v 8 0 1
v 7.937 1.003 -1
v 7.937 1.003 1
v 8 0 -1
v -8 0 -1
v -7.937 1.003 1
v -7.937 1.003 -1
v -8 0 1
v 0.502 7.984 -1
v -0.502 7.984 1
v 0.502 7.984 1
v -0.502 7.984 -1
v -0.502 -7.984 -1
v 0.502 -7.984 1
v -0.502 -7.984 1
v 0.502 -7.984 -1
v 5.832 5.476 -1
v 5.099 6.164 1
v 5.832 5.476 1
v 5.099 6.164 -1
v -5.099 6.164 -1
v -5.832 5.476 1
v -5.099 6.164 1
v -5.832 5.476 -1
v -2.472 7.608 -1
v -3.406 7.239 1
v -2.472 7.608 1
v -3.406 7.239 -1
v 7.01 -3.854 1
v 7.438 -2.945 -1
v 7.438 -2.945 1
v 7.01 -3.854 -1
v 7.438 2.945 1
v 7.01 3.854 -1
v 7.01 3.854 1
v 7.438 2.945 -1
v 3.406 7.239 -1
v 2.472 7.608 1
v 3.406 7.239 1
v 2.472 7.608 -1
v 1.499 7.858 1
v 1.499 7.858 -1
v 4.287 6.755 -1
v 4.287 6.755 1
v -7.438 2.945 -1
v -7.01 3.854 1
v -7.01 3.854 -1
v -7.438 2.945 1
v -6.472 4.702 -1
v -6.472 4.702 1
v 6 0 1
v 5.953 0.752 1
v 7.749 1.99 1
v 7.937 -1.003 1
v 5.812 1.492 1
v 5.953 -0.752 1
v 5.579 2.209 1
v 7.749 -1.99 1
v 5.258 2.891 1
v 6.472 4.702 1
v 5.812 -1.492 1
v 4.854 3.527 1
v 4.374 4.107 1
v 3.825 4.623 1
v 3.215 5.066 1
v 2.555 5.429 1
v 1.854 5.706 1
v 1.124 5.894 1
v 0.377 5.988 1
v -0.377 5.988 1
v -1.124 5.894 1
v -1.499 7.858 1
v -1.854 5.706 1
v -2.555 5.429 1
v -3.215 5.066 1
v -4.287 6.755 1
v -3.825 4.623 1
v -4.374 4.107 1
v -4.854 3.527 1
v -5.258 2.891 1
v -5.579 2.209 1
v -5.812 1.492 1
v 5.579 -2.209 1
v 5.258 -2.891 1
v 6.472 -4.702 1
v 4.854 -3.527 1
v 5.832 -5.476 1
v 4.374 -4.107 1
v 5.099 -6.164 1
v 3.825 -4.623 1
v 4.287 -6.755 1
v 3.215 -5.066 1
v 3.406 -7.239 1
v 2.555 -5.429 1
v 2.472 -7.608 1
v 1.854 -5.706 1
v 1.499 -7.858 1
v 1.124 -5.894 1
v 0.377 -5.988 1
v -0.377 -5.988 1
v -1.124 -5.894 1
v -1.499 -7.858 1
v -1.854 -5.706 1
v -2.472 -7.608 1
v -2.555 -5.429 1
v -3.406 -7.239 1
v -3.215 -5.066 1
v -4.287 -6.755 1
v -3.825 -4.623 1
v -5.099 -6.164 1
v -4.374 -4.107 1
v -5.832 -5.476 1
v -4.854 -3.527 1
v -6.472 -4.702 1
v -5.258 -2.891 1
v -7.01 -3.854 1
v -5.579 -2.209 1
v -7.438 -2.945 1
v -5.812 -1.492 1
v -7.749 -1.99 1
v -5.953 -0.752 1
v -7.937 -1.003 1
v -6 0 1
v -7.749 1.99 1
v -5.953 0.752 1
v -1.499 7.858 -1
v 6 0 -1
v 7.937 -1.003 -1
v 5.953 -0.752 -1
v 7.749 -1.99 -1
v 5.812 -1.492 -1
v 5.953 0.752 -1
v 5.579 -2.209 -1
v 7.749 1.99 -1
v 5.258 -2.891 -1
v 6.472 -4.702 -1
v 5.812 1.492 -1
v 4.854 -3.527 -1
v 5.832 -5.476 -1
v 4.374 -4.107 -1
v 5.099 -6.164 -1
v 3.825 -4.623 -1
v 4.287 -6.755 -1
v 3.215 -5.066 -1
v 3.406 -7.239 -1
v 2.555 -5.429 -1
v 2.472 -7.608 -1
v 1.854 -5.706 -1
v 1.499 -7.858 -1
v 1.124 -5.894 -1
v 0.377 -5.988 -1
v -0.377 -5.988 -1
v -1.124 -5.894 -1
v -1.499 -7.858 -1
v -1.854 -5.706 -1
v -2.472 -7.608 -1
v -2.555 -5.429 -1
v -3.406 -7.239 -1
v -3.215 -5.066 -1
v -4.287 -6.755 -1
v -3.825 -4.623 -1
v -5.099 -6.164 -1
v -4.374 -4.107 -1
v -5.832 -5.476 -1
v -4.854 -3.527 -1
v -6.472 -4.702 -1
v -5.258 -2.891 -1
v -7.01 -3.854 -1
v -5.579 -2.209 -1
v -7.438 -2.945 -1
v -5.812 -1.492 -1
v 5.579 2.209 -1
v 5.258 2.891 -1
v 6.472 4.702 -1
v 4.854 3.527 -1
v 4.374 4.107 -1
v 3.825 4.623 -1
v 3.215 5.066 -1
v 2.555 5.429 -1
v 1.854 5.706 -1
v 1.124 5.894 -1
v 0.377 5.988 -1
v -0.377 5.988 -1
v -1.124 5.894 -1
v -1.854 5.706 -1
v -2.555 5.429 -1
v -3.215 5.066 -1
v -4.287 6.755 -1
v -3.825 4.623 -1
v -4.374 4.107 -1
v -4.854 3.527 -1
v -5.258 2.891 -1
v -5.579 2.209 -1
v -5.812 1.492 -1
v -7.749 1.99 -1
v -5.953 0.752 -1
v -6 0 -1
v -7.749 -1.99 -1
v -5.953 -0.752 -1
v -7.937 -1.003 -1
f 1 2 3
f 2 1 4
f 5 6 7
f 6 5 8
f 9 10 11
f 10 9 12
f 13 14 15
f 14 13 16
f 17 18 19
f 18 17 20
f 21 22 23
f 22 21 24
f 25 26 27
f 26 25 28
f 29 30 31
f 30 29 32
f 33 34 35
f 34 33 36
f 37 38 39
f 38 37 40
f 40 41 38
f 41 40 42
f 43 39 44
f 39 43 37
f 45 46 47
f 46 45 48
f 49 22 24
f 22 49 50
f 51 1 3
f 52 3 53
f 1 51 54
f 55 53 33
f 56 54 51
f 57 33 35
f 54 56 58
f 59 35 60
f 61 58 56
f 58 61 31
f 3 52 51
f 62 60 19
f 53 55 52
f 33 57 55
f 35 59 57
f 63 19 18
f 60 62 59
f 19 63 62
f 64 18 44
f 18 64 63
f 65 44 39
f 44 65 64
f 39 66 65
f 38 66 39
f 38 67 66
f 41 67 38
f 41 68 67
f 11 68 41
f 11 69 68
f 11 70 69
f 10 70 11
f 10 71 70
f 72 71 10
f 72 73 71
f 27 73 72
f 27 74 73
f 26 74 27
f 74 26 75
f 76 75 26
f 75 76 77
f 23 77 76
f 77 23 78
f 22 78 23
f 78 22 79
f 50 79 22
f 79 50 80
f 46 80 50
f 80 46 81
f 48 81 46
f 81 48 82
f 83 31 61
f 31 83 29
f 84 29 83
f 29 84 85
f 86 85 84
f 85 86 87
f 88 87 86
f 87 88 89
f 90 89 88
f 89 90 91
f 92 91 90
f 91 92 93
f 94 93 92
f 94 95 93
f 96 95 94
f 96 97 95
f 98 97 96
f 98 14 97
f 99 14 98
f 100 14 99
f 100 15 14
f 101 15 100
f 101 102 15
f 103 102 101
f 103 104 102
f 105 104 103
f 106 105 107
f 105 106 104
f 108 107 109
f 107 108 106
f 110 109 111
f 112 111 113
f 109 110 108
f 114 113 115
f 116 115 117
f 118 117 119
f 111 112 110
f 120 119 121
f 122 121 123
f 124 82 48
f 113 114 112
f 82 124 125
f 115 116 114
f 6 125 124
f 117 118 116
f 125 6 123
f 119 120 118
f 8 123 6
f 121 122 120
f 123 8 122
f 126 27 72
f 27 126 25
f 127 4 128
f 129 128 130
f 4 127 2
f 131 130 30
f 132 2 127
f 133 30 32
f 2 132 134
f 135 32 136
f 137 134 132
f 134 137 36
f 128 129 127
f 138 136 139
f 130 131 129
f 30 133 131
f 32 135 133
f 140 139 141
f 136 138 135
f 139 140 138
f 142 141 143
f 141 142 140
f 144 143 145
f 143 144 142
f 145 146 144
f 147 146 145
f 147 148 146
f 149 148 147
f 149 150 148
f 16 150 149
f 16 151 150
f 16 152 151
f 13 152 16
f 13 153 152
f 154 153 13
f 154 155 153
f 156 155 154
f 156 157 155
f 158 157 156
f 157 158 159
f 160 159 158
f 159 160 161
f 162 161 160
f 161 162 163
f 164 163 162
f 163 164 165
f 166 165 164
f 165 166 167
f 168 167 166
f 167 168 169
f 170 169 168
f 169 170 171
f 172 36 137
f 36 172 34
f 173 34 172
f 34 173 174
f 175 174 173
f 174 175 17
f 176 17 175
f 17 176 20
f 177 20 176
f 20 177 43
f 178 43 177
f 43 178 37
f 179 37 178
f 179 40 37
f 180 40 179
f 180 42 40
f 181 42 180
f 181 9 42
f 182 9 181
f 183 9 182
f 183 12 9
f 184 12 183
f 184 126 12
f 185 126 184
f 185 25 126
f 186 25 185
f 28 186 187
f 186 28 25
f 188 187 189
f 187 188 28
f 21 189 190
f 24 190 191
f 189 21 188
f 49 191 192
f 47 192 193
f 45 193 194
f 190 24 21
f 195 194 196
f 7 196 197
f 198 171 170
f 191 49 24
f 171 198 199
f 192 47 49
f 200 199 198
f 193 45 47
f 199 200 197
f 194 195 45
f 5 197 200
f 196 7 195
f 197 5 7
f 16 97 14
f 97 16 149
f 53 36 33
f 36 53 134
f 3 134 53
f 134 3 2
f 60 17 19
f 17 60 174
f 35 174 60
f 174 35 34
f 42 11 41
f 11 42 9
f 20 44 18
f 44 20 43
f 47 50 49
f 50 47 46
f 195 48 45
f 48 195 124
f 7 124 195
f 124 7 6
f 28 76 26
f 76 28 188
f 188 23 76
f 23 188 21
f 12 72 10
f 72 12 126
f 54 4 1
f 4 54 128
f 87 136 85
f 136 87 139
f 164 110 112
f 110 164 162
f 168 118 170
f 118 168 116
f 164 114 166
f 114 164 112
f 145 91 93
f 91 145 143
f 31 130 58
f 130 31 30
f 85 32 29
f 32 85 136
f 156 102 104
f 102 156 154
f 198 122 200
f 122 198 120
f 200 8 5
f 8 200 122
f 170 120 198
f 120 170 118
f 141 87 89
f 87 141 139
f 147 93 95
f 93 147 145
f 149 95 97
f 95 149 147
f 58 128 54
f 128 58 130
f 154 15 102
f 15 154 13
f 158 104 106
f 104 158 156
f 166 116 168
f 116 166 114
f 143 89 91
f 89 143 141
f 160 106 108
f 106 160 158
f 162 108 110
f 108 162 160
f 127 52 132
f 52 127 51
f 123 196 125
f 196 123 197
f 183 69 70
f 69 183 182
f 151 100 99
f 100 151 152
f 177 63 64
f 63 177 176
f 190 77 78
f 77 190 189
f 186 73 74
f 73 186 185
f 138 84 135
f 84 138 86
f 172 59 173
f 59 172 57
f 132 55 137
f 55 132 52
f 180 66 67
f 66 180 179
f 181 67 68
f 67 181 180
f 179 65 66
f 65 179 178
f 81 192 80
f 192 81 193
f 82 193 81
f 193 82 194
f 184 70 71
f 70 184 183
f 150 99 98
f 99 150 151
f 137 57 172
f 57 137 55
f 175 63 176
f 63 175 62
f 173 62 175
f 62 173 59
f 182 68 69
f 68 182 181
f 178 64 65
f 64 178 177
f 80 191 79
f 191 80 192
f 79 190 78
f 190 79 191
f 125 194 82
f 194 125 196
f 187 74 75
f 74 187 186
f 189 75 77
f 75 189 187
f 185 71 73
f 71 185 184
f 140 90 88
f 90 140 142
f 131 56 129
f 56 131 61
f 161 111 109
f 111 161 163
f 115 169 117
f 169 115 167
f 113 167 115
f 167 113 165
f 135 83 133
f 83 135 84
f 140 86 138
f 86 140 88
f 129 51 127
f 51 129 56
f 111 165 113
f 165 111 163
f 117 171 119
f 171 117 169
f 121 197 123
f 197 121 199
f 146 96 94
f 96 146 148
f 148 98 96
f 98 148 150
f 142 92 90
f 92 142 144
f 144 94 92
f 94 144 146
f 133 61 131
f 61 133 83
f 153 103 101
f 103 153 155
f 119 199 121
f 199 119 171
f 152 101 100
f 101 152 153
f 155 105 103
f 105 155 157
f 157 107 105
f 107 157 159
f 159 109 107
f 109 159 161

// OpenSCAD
$fn = 50;


difference() {
	union() {
		translate(v = [0, 0, -1.0000000000]) {
			cylinder(h = 2, r = 8.0000000000);
		}
	}
	union() {
		translate(v = [0, 0, -100.0000000000]) {
			cylinder(h = 200, r = 6);
		}
	}
}
